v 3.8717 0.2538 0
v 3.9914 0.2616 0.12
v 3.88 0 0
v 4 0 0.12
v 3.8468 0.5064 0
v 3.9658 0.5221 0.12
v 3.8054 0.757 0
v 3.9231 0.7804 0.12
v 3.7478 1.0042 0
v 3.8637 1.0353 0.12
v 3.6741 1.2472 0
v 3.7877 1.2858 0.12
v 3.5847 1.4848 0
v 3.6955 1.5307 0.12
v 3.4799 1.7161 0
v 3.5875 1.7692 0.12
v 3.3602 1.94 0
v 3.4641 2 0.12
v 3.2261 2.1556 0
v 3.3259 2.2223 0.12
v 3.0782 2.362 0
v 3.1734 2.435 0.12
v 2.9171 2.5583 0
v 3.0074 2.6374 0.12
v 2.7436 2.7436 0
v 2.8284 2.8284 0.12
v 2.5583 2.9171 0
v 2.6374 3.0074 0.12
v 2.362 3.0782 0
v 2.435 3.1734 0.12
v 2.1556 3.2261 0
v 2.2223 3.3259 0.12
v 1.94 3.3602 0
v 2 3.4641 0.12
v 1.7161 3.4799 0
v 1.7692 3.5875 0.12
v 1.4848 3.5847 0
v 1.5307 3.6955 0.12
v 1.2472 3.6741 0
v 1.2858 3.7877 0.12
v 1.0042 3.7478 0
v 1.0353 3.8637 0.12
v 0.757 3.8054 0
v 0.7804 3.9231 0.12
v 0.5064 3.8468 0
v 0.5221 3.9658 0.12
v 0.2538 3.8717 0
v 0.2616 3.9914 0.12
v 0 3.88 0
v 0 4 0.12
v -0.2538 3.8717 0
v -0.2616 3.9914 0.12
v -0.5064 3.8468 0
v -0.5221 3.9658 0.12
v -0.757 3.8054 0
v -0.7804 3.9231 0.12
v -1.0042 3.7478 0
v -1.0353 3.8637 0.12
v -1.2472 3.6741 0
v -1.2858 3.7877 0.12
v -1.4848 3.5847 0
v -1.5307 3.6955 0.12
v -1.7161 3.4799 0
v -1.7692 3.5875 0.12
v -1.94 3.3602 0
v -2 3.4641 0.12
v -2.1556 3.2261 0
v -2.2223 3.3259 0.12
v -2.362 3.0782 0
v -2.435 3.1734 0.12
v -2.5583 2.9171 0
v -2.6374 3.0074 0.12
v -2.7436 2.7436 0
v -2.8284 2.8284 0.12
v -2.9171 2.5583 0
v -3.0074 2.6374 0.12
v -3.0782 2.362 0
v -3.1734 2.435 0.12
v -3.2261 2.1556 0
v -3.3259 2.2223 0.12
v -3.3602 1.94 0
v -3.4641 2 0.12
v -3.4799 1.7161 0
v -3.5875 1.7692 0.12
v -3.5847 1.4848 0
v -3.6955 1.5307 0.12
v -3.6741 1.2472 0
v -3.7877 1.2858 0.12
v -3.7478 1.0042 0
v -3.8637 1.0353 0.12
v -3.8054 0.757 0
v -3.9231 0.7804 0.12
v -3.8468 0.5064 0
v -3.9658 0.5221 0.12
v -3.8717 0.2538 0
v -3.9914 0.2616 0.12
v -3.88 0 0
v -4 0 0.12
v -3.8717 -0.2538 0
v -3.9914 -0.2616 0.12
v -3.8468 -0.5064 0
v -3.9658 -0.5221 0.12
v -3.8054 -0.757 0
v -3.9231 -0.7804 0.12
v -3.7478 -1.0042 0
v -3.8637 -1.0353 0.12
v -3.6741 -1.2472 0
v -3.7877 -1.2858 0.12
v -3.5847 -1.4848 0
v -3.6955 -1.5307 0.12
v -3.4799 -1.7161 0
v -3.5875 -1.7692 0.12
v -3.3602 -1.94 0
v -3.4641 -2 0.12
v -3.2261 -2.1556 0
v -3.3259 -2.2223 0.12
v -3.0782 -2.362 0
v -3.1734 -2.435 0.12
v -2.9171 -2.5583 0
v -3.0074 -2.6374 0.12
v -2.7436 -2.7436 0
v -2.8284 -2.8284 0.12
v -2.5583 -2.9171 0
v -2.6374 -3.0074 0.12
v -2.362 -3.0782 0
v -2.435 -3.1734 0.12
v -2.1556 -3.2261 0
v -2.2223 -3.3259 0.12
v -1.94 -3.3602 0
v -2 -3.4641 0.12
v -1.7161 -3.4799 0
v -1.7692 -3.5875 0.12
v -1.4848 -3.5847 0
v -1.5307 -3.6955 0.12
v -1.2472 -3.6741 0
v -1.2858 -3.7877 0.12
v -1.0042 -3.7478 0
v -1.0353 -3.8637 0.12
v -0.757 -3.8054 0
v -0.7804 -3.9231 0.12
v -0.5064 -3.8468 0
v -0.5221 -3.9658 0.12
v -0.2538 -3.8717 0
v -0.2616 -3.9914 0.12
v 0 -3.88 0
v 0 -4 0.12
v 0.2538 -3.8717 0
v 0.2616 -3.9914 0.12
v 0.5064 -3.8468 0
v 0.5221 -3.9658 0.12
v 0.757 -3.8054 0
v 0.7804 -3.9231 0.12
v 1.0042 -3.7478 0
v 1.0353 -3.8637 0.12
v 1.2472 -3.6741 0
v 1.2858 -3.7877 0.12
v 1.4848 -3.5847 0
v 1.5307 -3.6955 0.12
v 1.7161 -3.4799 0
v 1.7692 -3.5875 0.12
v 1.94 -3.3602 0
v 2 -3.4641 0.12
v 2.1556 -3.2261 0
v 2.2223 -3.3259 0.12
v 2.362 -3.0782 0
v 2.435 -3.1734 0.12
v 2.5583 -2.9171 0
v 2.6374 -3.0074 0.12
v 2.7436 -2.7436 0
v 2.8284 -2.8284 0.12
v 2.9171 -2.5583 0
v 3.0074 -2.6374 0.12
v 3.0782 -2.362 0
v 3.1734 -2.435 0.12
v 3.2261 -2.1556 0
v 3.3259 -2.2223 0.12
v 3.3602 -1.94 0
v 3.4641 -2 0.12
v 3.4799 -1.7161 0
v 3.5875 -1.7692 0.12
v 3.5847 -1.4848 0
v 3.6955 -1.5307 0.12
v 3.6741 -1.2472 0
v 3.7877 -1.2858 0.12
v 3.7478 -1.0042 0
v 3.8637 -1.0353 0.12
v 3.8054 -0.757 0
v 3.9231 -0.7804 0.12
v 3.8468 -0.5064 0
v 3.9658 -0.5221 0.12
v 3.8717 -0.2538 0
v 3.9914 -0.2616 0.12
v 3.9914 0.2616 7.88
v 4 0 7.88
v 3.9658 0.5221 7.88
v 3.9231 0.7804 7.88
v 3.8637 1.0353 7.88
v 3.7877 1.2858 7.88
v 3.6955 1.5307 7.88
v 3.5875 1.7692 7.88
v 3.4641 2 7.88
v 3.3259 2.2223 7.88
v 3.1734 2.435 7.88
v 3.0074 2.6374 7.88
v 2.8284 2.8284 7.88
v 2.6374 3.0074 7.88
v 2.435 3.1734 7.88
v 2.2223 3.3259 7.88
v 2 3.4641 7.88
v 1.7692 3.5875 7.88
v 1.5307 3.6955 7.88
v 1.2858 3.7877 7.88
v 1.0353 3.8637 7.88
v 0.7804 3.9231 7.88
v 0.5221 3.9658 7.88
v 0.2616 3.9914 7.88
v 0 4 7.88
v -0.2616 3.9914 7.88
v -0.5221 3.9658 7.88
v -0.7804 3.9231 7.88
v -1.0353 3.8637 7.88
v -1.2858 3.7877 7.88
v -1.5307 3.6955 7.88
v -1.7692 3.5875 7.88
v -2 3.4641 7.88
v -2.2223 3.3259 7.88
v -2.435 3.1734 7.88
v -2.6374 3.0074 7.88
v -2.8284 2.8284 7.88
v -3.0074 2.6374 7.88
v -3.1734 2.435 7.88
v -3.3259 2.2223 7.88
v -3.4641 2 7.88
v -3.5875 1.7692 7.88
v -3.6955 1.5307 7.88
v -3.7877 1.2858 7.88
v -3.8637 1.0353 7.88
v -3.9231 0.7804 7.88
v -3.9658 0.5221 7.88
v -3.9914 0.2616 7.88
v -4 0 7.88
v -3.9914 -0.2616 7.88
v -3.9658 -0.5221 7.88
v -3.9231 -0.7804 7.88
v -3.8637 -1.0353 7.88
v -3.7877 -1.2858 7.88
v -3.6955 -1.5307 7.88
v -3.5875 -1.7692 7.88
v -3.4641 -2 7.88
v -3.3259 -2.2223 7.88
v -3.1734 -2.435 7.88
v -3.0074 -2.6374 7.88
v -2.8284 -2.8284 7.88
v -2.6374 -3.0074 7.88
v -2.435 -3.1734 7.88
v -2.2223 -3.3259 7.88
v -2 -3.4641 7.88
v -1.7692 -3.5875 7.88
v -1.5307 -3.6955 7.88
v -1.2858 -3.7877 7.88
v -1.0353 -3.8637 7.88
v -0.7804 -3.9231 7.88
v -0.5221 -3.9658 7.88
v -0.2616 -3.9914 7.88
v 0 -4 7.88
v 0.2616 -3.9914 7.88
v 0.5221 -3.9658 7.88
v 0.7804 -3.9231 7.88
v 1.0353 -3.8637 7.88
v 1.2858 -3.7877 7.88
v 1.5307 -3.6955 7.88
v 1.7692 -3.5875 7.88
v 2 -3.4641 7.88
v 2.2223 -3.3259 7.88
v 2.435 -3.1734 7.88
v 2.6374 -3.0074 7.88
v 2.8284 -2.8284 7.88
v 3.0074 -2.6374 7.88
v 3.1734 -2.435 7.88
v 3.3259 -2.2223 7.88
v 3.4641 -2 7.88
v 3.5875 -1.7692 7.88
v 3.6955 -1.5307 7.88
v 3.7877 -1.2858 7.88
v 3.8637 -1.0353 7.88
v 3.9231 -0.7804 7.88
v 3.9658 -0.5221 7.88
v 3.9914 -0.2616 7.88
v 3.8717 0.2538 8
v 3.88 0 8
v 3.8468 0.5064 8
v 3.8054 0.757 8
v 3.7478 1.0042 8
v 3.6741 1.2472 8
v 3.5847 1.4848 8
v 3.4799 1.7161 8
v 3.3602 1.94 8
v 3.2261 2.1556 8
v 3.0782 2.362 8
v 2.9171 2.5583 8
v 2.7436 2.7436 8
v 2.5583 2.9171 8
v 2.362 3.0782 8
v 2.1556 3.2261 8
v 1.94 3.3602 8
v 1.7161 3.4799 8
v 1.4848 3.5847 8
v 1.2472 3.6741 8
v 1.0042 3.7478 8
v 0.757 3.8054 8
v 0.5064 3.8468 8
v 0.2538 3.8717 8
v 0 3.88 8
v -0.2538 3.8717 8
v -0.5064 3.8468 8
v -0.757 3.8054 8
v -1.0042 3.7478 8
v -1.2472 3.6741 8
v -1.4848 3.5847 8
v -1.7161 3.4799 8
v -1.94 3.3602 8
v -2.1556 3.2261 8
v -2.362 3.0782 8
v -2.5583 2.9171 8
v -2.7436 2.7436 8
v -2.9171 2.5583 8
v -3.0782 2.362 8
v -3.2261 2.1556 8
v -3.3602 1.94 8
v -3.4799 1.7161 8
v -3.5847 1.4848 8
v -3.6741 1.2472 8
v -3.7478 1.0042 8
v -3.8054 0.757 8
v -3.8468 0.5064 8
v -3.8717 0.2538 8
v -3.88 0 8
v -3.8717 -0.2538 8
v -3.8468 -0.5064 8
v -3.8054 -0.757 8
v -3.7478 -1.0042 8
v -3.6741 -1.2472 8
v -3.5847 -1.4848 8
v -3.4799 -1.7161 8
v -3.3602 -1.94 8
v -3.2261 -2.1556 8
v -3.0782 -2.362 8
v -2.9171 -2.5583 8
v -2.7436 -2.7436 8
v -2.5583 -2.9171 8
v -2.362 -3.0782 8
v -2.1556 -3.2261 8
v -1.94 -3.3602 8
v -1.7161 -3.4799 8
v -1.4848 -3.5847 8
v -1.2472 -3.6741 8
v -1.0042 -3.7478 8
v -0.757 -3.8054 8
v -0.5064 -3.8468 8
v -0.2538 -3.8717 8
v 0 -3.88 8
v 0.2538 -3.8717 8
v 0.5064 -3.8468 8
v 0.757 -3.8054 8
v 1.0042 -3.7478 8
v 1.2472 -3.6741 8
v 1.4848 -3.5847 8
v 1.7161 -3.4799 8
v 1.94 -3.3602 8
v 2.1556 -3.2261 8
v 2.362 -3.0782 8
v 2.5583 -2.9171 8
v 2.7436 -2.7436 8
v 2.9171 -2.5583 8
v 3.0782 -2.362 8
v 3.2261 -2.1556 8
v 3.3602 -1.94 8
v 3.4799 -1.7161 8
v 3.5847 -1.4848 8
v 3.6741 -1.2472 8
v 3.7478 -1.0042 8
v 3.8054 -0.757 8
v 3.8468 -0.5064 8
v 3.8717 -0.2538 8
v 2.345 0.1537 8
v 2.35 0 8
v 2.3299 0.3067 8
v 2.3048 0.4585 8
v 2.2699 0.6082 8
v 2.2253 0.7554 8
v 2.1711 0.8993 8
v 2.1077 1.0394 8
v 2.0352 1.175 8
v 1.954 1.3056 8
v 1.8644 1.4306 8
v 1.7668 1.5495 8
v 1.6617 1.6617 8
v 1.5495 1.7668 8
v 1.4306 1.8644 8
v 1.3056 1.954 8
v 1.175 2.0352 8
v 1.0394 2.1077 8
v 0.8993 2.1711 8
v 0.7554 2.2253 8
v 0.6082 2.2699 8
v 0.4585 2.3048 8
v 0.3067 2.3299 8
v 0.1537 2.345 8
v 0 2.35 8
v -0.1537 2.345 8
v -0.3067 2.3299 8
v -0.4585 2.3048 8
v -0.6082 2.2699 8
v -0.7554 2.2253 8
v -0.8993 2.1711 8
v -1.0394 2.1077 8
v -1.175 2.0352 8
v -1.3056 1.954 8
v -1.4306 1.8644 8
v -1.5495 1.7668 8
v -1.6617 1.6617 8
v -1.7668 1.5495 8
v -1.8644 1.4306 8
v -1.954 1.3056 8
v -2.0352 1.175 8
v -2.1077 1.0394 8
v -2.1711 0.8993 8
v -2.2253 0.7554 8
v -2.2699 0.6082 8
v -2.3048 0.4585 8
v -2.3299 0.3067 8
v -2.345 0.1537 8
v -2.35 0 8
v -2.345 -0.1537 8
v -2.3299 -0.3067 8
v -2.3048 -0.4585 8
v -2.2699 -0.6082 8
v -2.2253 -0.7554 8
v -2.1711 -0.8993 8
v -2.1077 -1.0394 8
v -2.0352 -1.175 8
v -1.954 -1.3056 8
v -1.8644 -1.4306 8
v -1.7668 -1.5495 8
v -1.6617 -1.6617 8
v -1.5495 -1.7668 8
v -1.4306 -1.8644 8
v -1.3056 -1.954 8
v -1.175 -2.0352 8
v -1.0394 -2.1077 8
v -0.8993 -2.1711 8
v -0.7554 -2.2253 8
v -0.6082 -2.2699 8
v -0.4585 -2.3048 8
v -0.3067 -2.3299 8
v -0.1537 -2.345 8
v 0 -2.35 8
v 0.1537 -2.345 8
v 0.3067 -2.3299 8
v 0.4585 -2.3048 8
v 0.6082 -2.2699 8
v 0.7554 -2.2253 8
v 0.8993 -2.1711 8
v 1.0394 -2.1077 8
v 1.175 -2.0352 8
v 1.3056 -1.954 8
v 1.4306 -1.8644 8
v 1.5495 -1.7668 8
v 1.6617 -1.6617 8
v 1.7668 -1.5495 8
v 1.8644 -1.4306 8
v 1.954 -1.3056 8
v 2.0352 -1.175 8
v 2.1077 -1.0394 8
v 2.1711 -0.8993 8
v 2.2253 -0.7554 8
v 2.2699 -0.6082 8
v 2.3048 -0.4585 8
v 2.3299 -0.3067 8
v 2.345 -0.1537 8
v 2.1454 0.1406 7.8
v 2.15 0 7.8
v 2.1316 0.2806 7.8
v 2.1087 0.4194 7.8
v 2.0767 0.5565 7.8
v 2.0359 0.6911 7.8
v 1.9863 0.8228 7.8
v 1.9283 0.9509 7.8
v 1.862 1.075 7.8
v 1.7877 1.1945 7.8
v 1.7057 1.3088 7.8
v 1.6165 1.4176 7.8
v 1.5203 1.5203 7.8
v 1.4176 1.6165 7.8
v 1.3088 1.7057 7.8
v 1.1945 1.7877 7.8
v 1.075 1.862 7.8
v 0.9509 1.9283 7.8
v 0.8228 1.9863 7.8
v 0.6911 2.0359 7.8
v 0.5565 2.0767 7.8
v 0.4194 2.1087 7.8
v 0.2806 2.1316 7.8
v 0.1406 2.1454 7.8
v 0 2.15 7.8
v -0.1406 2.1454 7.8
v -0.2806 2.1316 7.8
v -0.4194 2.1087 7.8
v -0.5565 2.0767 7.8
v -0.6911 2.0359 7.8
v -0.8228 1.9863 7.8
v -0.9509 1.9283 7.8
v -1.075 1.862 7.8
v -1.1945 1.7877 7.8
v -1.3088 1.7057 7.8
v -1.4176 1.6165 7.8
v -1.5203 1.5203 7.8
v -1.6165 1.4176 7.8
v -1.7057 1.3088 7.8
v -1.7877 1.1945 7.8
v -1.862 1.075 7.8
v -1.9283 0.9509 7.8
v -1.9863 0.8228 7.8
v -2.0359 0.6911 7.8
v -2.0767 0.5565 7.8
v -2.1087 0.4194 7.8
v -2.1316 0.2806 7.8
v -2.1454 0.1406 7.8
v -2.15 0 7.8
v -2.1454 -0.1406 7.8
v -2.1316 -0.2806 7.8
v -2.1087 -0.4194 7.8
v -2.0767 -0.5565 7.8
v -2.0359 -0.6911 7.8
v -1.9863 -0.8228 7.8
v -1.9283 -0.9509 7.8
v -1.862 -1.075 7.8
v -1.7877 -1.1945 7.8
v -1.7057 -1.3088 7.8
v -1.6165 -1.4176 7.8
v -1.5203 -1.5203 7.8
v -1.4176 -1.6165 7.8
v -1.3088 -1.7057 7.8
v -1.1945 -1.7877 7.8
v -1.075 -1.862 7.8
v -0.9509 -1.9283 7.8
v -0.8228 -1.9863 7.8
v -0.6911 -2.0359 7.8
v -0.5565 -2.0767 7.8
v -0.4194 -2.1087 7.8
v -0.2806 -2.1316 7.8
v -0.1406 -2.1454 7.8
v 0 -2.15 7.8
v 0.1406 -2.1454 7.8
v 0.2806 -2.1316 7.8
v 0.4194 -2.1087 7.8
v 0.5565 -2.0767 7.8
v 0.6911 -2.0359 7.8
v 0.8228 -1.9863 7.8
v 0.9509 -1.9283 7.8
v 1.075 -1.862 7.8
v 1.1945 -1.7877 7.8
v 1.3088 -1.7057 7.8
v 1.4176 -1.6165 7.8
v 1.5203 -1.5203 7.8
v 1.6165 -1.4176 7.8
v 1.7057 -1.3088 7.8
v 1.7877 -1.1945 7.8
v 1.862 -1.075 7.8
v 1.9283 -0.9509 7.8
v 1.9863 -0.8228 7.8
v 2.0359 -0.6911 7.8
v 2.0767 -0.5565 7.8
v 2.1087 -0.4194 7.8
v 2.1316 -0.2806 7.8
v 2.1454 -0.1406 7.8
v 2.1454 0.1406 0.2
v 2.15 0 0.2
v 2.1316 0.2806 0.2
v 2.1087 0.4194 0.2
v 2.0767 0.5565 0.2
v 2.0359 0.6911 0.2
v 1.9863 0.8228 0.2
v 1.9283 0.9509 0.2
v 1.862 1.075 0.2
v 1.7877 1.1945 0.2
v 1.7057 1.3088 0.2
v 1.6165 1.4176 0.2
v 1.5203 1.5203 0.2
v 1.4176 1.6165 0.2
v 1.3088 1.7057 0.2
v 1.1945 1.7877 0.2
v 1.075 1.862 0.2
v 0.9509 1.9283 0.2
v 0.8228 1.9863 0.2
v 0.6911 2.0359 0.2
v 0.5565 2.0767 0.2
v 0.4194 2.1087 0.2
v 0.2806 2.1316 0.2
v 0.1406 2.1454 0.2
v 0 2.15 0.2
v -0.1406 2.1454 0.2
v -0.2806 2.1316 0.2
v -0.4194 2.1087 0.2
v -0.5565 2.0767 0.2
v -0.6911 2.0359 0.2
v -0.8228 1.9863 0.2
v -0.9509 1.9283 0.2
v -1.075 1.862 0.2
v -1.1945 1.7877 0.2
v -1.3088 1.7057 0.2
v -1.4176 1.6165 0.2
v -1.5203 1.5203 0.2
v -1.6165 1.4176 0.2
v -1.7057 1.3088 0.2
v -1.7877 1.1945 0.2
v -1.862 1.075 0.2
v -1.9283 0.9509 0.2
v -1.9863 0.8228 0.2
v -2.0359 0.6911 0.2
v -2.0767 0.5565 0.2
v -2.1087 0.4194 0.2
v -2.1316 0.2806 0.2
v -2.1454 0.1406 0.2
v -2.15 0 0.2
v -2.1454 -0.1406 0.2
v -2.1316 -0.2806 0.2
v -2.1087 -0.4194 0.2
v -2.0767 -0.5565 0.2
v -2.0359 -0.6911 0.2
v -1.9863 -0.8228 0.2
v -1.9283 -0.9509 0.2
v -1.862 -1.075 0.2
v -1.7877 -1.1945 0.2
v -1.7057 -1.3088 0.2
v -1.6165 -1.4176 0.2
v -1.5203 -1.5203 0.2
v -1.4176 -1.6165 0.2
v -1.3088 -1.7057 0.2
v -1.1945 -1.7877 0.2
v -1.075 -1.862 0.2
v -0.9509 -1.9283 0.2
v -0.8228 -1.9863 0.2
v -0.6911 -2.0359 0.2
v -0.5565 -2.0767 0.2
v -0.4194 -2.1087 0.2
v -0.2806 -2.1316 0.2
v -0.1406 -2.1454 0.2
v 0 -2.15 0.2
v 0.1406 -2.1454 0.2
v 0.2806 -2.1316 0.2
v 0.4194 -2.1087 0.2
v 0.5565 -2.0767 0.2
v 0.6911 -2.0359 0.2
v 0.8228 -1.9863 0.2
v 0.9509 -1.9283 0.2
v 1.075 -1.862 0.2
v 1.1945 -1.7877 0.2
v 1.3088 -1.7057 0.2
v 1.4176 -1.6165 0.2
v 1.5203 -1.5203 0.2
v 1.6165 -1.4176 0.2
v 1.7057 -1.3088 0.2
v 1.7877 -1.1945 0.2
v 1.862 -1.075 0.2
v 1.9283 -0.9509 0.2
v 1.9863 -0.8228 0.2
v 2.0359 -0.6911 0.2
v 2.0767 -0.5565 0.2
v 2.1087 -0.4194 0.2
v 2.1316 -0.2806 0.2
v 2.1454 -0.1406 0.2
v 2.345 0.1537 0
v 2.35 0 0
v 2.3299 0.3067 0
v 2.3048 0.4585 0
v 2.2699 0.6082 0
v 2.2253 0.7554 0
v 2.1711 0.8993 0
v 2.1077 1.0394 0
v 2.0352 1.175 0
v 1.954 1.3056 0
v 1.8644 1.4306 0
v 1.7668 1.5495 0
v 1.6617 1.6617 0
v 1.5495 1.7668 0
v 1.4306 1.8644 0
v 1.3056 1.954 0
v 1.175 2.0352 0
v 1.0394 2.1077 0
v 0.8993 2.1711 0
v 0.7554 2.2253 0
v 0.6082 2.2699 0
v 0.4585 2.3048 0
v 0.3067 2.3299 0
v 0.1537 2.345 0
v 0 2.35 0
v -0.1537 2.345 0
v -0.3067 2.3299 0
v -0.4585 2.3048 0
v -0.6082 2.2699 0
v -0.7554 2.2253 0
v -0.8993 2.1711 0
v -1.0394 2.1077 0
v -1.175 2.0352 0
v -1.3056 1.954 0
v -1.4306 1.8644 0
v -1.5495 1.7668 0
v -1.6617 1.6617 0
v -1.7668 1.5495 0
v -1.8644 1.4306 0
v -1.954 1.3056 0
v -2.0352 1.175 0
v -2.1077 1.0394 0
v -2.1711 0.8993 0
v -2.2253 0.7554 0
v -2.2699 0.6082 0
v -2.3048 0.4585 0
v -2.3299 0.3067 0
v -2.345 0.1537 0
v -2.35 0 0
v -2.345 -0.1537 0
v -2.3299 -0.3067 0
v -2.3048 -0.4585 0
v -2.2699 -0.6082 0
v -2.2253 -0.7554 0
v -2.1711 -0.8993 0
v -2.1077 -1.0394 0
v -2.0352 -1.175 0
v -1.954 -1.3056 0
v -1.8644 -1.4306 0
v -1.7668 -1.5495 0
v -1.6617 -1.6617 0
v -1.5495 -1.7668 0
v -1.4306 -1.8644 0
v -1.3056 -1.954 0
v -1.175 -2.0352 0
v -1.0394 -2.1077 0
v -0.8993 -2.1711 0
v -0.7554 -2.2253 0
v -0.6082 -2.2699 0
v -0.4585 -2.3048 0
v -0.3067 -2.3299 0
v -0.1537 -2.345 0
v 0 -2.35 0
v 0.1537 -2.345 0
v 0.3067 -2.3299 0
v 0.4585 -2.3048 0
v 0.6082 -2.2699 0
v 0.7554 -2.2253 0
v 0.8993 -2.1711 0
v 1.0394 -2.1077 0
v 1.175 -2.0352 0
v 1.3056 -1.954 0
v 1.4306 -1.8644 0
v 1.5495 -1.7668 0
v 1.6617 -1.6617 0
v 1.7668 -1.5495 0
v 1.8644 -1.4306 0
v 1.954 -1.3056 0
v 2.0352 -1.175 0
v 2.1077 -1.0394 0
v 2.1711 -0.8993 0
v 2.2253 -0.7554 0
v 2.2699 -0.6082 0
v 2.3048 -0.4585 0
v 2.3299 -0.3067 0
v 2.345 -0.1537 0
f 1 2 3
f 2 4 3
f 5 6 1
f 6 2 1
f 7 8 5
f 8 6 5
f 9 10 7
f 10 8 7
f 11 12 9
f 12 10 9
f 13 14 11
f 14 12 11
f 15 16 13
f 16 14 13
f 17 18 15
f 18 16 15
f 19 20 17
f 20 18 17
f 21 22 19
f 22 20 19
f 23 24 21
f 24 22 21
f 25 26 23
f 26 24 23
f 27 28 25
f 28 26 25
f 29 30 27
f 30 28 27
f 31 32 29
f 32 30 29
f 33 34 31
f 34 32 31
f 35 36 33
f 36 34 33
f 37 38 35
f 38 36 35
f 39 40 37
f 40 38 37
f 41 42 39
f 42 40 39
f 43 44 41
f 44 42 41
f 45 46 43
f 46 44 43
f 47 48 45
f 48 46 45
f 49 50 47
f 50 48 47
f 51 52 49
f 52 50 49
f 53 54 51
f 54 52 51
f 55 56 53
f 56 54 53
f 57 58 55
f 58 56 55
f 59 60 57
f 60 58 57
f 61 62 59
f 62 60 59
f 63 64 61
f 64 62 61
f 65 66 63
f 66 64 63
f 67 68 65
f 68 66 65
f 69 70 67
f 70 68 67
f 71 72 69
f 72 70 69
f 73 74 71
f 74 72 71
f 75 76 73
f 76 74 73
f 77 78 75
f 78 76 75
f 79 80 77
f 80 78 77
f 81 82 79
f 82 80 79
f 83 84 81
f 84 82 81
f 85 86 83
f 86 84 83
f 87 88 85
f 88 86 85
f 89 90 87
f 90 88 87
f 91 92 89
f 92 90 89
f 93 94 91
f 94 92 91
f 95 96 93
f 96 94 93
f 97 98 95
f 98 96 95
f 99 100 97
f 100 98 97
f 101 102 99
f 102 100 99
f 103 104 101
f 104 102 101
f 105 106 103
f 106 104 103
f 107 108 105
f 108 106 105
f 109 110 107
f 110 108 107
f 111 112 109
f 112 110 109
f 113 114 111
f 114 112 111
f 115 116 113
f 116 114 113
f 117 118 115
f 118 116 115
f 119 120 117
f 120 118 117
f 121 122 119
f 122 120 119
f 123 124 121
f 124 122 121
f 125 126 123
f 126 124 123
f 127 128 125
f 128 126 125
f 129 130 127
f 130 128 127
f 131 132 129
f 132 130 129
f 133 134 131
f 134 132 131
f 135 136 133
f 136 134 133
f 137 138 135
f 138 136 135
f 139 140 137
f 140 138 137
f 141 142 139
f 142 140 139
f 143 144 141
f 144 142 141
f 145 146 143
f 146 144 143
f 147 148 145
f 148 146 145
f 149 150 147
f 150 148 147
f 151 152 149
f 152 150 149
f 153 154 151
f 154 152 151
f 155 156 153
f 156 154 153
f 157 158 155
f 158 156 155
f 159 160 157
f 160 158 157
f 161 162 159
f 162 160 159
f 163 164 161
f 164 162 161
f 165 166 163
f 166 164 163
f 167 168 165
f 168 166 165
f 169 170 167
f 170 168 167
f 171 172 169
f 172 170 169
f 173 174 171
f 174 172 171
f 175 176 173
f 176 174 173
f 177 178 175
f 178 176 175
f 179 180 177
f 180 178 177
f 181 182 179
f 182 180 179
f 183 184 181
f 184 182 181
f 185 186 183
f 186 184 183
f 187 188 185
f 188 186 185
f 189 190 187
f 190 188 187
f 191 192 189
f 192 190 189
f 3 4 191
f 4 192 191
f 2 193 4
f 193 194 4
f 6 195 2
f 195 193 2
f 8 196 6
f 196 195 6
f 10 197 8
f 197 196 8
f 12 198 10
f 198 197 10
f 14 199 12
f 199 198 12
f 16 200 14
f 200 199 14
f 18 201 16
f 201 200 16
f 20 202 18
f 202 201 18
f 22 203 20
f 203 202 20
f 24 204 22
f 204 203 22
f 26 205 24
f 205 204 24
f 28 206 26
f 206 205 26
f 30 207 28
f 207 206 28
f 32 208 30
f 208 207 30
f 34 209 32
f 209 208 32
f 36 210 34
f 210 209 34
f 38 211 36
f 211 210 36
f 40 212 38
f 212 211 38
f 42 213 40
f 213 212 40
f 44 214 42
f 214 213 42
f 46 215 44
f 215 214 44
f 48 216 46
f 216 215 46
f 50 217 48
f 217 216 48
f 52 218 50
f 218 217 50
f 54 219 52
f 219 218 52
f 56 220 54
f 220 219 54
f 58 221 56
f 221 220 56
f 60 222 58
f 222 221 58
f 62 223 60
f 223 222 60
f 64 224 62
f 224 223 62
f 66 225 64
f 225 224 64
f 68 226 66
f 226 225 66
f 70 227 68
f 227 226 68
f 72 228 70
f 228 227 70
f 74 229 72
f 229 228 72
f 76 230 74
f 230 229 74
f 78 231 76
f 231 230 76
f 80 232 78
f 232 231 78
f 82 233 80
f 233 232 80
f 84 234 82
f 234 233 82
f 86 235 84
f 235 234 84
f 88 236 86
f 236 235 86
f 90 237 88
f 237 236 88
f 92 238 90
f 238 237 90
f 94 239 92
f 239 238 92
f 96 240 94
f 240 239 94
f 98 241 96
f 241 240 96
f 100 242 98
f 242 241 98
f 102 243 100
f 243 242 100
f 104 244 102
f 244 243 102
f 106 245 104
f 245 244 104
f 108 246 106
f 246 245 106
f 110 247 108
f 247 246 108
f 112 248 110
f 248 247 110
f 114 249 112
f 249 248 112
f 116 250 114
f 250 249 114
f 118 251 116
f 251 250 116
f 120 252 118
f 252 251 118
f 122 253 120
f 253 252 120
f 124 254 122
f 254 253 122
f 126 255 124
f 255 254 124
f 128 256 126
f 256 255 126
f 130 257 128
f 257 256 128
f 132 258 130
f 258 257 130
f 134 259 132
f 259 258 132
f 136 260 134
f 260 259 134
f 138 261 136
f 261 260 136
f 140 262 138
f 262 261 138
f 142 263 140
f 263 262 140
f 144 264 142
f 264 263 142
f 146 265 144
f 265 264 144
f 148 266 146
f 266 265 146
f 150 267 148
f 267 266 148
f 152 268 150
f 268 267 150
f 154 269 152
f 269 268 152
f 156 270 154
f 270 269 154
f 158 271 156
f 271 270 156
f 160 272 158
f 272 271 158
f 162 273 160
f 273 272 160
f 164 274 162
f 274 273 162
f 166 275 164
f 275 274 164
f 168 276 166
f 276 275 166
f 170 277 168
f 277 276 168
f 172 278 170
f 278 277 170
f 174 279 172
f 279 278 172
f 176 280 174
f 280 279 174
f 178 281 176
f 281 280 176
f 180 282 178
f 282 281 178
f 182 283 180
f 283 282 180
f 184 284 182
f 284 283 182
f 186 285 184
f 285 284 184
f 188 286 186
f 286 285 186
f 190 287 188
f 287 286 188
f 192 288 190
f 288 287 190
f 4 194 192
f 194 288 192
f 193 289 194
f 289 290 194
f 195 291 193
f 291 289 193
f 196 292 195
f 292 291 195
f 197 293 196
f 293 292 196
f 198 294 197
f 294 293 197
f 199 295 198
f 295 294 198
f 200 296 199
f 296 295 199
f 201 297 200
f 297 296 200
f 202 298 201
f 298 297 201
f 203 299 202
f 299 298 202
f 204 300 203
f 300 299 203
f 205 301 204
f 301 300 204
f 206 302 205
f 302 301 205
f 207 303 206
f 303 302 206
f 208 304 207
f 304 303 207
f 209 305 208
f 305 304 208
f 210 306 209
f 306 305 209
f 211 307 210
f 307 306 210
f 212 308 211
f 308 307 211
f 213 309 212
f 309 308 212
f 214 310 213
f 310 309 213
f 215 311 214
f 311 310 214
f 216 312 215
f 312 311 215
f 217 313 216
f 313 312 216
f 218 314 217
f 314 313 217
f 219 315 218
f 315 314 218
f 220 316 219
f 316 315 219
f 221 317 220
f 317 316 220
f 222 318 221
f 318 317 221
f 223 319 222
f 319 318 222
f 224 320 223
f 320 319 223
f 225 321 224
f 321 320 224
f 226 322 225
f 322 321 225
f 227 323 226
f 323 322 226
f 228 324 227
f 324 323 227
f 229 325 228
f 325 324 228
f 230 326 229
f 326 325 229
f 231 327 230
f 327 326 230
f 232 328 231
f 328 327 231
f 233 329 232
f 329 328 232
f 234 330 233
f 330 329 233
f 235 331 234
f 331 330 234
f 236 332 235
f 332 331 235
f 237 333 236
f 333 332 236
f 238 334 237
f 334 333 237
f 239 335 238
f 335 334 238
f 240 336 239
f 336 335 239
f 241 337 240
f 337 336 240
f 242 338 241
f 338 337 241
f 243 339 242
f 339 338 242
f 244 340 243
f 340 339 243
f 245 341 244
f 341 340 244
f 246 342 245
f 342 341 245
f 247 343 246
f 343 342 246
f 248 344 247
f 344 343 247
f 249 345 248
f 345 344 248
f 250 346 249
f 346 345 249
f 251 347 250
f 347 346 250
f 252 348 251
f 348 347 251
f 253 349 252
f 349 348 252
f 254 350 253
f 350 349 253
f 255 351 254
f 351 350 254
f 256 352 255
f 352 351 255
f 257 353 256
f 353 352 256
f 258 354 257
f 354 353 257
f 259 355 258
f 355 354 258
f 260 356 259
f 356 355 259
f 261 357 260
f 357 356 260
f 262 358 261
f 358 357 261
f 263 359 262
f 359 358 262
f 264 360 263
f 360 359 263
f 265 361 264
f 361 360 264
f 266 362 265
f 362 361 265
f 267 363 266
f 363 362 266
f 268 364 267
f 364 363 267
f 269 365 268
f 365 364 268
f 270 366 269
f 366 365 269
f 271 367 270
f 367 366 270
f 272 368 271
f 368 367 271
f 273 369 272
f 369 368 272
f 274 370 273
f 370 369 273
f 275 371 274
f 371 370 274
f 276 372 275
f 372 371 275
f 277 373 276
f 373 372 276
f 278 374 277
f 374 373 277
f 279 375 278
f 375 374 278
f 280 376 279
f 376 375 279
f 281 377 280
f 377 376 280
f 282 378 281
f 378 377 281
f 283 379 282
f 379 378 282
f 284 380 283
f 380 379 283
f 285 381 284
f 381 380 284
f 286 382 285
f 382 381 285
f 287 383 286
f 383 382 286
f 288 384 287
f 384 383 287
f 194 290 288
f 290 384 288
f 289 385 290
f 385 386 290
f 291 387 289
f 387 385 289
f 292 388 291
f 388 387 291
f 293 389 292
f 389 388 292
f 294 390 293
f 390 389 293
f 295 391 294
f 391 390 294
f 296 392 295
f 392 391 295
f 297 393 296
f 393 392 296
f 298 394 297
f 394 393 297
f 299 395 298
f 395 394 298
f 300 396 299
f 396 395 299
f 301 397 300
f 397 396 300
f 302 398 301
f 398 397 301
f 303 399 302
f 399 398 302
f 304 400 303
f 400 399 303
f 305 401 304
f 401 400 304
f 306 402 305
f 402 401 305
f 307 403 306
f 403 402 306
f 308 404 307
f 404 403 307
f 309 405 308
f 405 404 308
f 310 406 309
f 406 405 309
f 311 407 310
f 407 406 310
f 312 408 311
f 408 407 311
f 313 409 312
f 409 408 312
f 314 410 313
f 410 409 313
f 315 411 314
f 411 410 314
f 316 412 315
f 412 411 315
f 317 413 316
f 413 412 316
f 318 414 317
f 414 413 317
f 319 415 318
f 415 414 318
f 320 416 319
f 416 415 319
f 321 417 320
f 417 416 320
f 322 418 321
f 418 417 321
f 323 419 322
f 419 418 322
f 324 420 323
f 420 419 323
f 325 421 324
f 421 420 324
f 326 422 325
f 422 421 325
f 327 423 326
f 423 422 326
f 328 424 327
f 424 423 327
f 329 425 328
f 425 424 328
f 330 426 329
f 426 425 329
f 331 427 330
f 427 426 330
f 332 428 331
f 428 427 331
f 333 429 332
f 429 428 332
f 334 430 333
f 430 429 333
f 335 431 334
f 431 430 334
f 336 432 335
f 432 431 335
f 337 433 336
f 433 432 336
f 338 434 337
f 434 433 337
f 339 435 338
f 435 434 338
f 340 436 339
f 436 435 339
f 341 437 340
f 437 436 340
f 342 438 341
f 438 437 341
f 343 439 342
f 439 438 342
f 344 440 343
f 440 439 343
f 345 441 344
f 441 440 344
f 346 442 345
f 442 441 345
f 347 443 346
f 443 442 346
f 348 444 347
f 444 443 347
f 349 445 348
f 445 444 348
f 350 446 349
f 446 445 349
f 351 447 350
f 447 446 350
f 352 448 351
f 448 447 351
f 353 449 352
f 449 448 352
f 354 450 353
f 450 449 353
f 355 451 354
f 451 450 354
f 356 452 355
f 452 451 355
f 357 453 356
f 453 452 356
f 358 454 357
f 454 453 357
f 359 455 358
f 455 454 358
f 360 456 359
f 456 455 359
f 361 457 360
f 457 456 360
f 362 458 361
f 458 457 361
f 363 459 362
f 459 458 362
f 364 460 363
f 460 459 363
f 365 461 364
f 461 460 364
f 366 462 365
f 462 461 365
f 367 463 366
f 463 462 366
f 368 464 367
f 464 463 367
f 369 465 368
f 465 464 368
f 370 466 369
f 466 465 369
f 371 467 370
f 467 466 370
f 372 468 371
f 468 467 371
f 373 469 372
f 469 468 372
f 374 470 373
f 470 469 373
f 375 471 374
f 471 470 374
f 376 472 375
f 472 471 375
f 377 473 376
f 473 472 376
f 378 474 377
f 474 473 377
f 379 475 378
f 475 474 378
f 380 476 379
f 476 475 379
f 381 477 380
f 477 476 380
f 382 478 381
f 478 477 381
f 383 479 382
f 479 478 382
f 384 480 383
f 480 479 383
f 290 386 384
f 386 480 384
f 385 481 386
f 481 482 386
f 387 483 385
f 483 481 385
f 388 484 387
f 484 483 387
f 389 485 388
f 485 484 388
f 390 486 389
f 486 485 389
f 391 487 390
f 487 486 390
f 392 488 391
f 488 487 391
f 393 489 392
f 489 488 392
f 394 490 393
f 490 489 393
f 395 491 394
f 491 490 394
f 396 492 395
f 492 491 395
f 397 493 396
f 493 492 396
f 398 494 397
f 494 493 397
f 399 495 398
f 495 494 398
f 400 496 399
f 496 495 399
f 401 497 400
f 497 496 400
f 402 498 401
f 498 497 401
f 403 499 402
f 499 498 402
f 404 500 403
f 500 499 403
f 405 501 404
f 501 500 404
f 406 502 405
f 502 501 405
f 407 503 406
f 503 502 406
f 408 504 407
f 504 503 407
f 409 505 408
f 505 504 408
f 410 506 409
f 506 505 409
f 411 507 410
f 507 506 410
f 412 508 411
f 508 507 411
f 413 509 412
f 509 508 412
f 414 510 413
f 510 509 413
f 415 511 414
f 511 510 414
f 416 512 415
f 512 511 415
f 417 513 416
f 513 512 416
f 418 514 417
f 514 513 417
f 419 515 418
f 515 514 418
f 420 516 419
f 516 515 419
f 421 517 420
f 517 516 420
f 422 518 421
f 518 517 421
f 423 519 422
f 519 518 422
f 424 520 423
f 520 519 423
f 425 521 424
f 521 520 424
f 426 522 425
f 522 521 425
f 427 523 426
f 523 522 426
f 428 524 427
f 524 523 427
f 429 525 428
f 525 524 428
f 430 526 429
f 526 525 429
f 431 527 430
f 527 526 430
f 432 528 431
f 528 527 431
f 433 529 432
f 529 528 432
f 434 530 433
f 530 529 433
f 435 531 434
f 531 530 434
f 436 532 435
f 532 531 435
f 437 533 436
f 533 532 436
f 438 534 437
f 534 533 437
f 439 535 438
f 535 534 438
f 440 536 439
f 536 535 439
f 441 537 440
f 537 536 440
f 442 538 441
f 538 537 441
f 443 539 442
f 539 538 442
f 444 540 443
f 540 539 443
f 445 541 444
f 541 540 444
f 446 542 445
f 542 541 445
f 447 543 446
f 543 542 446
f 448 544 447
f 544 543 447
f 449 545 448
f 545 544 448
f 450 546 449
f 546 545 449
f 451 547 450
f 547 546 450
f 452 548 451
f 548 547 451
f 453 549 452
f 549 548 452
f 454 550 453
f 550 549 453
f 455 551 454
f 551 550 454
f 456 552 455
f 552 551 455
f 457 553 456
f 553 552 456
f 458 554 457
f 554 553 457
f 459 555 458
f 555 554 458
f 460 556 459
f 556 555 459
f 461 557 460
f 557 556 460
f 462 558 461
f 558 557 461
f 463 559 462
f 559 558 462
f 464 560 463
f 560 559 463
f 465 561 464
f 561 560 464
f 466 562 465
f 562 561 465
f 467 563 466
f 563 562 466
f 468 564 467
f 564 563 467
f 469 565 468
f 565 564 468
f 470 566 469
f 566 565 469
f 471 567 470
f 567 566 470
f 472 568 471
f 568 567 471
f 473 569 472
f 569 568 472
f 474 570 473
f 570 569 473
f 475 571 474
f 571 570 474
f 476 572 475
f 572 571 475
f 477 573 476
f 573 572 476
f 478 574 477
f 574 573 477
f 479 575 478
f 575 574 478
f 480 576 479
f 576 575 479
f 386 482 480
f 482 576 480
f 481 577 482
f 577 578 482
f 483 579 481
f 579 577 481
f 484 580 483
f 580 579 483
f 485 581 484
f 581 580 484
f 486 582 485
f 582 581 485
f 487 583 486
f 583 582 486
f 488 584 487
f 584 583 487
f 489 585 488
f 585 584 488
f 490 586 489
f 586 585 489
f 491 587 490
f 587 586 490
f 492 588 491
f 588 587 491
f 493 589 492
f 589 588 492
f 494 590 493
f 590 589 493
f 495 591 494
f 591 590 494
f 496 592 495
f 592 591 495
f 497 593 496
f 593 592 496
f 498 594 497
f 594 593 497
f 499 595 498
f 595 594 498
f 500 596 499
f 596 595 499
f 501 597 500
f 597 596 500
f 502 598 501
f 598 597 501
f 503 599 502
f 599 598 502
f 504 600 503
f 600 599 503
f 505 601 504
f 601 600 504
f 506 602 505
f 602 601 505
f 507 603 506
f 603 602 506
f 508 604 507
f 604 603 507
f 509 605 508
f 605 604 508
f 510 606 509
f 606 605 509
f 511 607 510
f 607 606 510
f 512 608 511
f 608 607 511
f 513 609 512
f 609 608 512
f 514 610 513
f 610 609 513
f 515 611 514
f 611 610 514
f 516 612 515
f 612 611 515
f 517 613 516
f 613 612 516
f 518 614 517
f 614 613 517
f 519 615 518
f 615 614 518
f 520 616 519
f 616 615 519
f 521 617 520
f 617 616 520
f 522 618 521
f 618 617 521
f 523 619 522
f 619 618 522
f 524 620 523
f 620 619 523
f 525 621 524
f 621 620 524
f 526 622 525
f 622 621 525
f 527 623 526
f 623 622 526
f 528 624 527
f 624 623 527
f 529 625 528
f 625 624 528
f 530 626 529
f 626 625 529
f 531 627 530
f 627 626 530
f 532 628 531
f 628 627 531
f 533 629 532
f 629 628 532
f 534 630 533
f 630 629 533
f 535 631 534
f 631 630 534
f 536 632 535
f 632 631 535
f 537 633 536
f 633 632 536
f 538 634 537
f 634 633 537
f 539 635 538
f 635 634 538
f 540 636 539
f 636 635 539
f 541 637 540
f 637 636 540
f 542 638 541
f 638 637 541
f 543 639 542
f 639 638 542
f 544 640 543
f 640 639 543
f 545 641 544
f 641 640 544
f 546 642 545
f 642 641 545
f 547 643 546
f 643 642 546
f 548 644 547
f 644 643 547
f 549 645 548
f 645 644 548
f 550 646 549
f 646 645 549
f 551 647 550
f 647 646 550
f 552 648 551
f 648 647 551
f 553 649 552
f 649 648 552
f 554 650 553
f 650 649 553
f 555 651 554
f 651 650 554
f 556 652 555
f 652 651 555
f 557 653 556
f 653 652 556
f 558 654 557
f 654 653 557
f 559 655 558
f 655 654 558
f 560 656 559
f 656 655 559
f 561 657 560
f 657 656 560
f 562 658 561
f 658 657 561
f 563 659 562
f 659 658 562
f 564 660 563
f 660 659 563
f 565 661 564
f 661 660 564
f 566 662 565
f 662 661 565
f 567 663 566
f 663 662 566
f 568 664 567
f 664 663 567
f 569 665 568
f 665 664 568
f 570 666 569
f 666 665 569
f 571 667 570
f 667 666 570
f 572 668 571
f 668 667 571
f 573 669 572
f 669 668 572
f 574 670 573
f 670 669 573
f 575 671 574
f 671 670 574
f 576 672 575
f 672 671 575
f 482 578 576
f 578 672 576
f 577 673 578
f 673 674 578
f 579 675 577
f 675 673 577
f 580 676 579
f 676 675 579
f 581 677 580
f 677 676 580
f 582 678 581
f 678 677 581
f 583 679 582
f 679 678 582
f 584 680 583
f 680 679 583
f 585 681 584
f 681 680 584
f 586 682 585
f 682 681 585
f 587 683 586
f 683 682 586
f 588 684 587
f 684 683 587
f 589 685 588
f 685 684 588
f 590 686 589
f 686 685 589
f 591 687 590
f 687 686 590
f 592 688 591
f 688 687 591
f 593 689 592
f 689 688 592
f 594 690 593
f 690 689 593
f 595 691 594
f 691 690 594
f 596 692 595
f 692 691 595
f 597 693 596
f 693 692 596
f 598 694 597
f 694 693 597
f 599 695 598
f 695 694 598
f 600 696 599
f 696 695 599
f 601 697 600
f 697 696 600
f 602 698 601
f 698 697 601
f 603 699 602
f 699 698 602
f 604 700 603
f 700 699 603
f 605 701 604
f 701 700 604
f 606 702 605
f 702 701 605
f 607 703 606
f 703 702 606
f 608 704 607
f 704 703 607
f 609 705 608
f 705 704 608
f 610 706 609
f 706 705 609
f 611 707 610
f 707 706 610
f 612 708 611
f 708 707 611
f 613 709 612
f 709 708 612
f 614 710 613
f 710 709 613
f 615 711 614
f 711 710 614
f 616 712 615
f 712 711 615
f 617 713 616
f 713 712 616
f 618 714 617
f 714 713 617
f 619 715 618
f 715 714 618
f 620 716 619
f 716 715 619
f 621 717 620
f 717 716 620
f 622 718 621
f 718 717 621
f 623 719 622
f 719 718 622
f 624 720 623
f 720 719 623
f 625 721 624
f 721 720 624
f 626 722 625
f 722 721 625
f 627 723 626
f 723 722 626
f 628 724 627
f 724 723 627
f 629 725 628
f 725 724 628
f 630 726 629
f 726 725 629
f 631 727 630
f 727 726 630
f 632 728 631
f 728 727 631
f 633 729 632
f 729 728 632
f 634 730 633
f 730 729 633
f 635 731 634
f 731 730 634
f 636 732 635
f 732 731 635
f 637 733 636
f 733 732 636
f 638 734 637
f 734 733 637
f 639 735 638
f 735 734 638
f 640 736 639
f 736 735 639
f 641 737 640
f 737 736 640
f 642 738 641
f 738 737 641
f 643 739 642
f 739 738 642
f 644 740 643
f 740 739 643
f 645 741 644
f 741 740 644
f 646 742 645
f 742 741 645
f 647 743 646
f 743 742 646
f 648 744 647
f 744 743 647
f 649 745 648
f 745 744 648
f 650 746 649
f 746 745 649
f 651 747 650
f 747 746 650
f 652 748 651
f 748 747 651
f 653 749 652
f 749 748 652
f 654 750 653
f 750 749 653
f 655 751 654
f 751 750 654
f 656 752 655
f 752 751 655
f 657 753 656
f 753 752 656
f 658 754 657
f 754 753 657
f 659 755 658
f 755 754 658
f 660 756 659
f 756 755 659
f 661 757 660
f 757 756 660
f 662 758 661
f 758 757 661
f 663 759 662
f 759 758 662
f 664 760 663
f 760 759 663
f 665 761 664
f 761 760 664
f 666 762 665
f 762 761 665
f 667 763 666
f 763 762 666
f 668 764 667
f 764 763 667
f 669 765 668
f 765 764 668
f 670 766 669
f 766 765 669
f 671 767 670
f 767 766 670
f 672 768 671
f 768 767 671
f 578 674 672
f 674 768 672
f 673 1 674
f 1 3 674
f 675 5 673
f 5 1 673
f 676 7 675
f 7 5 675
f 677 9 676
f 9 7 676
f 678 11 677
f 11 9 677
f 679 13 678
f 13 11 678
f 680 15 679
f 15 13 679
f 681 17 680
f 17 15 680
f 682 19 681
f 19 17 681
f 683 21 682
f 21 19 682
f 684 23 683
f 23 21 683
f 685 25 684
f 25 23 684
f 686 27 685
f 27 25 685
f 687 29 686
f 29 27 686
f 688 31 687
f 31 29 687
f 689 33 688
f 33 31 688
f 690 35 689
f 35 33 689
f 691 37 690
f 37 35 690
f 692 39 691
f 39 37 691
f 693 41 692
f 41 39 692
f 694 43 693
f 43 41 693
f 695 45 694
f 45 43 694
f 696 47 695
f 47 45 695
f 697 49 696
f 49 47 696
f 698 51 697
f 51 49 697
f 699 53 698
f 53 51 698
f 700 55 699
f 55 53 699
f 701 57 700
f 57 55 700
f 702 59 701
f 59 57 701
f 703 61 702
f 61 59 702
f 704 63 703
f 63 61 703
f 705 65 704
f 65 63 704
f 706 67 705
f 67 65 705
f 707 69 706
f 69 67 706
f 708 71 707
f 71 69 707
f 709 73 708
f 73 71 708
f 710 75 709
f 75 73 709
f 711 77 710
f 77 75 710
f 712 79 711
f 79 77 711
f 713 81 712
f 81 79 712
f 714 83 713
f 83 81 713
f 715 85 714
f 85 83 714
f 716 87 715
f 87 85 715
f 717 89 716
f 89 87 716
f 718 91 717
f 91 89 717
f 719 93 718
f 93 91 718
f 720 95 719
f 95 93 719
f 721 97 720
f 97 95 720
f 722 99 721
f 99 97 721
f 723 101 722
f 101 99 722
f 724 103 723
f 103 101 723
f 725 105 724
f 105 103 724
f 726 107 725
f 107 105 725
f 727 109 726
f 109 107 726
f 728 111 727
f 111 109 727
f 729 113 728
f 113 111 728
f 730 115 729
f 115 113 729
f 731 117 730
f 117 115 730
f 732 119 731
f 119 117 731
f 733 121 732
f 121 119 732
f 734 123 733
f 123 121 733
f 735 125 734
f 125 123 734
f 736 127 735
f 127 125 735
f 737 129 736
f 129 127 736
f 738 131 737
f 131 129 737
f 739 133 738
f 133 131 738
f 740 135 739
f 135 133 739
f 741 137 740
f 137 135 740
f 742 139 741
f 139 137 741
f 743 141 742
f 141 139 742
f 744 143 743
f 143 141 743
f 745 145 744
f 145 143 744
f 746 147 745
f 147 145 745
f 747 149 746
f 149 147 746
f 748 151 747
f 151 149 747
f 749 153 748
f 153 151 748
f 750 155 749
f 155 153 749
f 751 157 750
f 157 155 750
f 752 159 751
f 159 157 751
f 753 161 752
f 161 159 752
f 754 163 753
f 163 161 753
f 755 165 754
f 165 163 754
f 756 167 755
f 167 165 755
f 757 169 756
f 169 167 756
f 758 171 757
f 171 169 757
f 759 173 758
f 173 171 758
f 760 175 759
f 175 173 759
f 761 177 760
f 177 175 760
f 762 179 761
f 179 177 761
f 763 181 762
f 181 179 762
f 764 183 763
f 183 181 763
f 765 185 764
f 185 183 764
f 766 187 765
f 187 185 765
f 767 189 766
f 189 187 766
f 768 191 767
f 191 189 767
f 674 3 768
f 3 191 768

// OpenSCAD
// OOMP generic catalogue model; units: mm.
// Stud length is additional to body depth. Tapping depths are model assumptions.
variant = "full"; // [full, display]
family = "spacer";
connection_type = "plain";
depth_mm = 8;
stud_length_mm = 0;
tapped_depth_mm = 0;
bore_mm = 4.3;
outer_diameter_mm = 8;
across_flats_mm = 6;
thread_nominal_diameter_mm = 3;
thread_pitch_mm = 0.5;
edge_chamfer_mm = 0.12;
mouth_chamfer_mm = 0.2;
angular_segments = 96;
samples_per_pitch = 16;

// Boundary travels up the outside, then down any tapped/plain bore.
// Equal-height rings at shoulders form the annular shoulder faces.
n = angular_segments;
threaded = family == "standoff";
has_stud = connection_type == "stud_to_tapped" || connection_type == "stud_to_stud";
two_studs = connection_type == "stud_to_stud";
through = !threaded || connection_type == "tapped_to_tapped";
pitch = thread_pitch_mm;
diameter = threaded ? thread_nominal_diameter_mm : bore_mm;
minor = diameter - 5*sqrt(3)*pitch/8;
transition = mouth_chamfer_mm + (threaded ? 5*sqrt(3)*pitch/16 : 0);
tip_chamfer = mouth_chamfer_mm + 17*sqrt(3)*pitch/48;
function sorted(v) = len(v)<=1 ? v : let(p=v[0])
    concat(sorted([for(x=v) if(x<p-1e-8) x]), [p], sorted([for(x=v) if(x>p+1e-8) x]));
function reverse(v) = [for(i=[len(v)-1:-1:0]) v[i]];
function theta(i) = i*360/n;
function fract(x) = x-floor(x);
function phase_distance(i,z) = abs(fract(z/pitch-theta(i)/360+0.5)-0.5);
function thread_r(i,z) = minor/2 + min(5*sqrt(3)*pitch/16,
    max(0,(phase_distance(i,z)-0.125)*pitch*sqrt(3)));
function stud_r(i,z,tip) = min(diameter/2 - (variant=="full" ?
    min(17*sqrt(3)*pitch/48,max(0,(phase_distance(i,z)-0.0625)*pitch*sqrt(3))) : 0),
    diameter/2-tip_chamfer+abs(z-tip));
function body_r(i,z) = (threaded ? across_flats_mm/2/cos(theta(i)%60-30) : outer_diameter_mm/2)
    - max(0,edge_chamfer_mm-min(z,depth_mm-z));
function bore_r(i,z) = max(threaded ? (variant=="full" ? thread_r(i,z) : minor/2) : diameter/2,
    diameter/2+mouth_chamfer_mm-(through ? min(z,depth_mm-z) : depth_mm-z));
function stud_z(a,b,tip) = let(count=variant=="full" ? ceil(stud_length_mm/pitch*samples_per_pitch) : 1)
    sorted(concat([for(i=[0:count]) a+(b-a)*i/count], [tip==a ? tip+tip_chamfer : tip-tip_chamfer]));
body_z = sorted([0,edge_chamfer_mm,depth_mm-edge_chamfer_mm,depth_mm]);
low = through ? 0 : depth_mm-tapped_depth_mm;
count = threaded && variant=="full" ? ceil((depth_mm-low)/pitch*samples_per_pitch) : 1;
bore_z = two_studs ? [] : reverse(sorted(concat(
    [for(i=[0:count]) low+(depth_mm-low)*i/count],
    [depth_mm-mouth_chamfer_mm,depth_mm-transition],
    through ? [mouth_chamfer_mm,transition] : [])));
// Ring descriptors: [height, kind, tip]. Kind: 0 body, 1 stud, 2 bore.
rings = concat(
    has_stud ? [for(z=stud_z(-stud_length_mm,0,-stud_length_mm)) [z,1,-stud_length_mm]] : [],
    [for(z=body_z) [z,0,0]],
    two_studs ? [for(z=stud_z(depth_mm,depth_mm+stud_length_mm,depth_mm+stud_length_mm)) [z,1,depth_mm+stud_length_mm]] : [],
    [for(z=bore_z) [z,2,0]]);
function radius(i,ring) = ring[1]==0 ? body_r(i,ring[0]) :
    ring[1]==1 ? stud_r(i,ring[0],ring[2]) : bore_r(i,ring[0]);
points = concat([for(ring=rings) for(i=[0:n-1])
    [radius(i,ring)*cos(theta(i)),radius(i,ring)*sin(theta(i)),ring[0]]],
    through ? [] : [[0,0,rings[0][0]],[0,0,rings[len(rings)-1][0]]]);
center = len(rings)*n;
last = (len(rings)-1)*n;
// OpenSCAD winding is opposite to STL winding.
faces = concat(
    [for(j=[0:len(rings)-(through ? 1 : 2)]) for(i=[0:n-1]) each
        let(a=j*n+i,b=j*n+(i+1)%n,c=((j+1)%len(rings))*n+(i+1)%n,d=((j+1)%len(rings))*n+i)
        [[a,c,b],[a,d,c]]],
    through ? [] : [for(i=[0:n-1]) each let(k=(i+1)%n)
        [[center,i,k],[center+1,last+k,last+i]]]);
assert(family=="spacer" || family=="standoff");
assert(!threaded || connection_type=="tapped_to_tapped" || has_stud);
assert(depth_mm>0 && diameter>0 && pitch>0);
assert(variant=="full" || variant=="display");
assert(n>=24 && n%12==0 && samples_per_pitch>=8);
assert(mouth_chamfer_mm>0 && mouth_chamfer_mm<depth_mm/2);
assert(edge_chamfer_mm>=0 && edge_chamfer_mm<depth_mm/2);
assert(diameter+4*max(mouth_chamfer_mm,edge_chamfer_mm) < (threaded ? across_flats_mm : outer_diameter_mm));
assert(!has_stud || stud_length_mm>2*mouth_chamfer_mm);
assert(!through || !threaded || 2*transition<depth_mm);
assert(connection_type!="stud_to_tapped" || (tapped_depth_mm>transition && tapped_depth_mm<depth_mm));
color([0.86,0.85,0.81]) polyhedron(points=points,faces=faces,convexity=20);
